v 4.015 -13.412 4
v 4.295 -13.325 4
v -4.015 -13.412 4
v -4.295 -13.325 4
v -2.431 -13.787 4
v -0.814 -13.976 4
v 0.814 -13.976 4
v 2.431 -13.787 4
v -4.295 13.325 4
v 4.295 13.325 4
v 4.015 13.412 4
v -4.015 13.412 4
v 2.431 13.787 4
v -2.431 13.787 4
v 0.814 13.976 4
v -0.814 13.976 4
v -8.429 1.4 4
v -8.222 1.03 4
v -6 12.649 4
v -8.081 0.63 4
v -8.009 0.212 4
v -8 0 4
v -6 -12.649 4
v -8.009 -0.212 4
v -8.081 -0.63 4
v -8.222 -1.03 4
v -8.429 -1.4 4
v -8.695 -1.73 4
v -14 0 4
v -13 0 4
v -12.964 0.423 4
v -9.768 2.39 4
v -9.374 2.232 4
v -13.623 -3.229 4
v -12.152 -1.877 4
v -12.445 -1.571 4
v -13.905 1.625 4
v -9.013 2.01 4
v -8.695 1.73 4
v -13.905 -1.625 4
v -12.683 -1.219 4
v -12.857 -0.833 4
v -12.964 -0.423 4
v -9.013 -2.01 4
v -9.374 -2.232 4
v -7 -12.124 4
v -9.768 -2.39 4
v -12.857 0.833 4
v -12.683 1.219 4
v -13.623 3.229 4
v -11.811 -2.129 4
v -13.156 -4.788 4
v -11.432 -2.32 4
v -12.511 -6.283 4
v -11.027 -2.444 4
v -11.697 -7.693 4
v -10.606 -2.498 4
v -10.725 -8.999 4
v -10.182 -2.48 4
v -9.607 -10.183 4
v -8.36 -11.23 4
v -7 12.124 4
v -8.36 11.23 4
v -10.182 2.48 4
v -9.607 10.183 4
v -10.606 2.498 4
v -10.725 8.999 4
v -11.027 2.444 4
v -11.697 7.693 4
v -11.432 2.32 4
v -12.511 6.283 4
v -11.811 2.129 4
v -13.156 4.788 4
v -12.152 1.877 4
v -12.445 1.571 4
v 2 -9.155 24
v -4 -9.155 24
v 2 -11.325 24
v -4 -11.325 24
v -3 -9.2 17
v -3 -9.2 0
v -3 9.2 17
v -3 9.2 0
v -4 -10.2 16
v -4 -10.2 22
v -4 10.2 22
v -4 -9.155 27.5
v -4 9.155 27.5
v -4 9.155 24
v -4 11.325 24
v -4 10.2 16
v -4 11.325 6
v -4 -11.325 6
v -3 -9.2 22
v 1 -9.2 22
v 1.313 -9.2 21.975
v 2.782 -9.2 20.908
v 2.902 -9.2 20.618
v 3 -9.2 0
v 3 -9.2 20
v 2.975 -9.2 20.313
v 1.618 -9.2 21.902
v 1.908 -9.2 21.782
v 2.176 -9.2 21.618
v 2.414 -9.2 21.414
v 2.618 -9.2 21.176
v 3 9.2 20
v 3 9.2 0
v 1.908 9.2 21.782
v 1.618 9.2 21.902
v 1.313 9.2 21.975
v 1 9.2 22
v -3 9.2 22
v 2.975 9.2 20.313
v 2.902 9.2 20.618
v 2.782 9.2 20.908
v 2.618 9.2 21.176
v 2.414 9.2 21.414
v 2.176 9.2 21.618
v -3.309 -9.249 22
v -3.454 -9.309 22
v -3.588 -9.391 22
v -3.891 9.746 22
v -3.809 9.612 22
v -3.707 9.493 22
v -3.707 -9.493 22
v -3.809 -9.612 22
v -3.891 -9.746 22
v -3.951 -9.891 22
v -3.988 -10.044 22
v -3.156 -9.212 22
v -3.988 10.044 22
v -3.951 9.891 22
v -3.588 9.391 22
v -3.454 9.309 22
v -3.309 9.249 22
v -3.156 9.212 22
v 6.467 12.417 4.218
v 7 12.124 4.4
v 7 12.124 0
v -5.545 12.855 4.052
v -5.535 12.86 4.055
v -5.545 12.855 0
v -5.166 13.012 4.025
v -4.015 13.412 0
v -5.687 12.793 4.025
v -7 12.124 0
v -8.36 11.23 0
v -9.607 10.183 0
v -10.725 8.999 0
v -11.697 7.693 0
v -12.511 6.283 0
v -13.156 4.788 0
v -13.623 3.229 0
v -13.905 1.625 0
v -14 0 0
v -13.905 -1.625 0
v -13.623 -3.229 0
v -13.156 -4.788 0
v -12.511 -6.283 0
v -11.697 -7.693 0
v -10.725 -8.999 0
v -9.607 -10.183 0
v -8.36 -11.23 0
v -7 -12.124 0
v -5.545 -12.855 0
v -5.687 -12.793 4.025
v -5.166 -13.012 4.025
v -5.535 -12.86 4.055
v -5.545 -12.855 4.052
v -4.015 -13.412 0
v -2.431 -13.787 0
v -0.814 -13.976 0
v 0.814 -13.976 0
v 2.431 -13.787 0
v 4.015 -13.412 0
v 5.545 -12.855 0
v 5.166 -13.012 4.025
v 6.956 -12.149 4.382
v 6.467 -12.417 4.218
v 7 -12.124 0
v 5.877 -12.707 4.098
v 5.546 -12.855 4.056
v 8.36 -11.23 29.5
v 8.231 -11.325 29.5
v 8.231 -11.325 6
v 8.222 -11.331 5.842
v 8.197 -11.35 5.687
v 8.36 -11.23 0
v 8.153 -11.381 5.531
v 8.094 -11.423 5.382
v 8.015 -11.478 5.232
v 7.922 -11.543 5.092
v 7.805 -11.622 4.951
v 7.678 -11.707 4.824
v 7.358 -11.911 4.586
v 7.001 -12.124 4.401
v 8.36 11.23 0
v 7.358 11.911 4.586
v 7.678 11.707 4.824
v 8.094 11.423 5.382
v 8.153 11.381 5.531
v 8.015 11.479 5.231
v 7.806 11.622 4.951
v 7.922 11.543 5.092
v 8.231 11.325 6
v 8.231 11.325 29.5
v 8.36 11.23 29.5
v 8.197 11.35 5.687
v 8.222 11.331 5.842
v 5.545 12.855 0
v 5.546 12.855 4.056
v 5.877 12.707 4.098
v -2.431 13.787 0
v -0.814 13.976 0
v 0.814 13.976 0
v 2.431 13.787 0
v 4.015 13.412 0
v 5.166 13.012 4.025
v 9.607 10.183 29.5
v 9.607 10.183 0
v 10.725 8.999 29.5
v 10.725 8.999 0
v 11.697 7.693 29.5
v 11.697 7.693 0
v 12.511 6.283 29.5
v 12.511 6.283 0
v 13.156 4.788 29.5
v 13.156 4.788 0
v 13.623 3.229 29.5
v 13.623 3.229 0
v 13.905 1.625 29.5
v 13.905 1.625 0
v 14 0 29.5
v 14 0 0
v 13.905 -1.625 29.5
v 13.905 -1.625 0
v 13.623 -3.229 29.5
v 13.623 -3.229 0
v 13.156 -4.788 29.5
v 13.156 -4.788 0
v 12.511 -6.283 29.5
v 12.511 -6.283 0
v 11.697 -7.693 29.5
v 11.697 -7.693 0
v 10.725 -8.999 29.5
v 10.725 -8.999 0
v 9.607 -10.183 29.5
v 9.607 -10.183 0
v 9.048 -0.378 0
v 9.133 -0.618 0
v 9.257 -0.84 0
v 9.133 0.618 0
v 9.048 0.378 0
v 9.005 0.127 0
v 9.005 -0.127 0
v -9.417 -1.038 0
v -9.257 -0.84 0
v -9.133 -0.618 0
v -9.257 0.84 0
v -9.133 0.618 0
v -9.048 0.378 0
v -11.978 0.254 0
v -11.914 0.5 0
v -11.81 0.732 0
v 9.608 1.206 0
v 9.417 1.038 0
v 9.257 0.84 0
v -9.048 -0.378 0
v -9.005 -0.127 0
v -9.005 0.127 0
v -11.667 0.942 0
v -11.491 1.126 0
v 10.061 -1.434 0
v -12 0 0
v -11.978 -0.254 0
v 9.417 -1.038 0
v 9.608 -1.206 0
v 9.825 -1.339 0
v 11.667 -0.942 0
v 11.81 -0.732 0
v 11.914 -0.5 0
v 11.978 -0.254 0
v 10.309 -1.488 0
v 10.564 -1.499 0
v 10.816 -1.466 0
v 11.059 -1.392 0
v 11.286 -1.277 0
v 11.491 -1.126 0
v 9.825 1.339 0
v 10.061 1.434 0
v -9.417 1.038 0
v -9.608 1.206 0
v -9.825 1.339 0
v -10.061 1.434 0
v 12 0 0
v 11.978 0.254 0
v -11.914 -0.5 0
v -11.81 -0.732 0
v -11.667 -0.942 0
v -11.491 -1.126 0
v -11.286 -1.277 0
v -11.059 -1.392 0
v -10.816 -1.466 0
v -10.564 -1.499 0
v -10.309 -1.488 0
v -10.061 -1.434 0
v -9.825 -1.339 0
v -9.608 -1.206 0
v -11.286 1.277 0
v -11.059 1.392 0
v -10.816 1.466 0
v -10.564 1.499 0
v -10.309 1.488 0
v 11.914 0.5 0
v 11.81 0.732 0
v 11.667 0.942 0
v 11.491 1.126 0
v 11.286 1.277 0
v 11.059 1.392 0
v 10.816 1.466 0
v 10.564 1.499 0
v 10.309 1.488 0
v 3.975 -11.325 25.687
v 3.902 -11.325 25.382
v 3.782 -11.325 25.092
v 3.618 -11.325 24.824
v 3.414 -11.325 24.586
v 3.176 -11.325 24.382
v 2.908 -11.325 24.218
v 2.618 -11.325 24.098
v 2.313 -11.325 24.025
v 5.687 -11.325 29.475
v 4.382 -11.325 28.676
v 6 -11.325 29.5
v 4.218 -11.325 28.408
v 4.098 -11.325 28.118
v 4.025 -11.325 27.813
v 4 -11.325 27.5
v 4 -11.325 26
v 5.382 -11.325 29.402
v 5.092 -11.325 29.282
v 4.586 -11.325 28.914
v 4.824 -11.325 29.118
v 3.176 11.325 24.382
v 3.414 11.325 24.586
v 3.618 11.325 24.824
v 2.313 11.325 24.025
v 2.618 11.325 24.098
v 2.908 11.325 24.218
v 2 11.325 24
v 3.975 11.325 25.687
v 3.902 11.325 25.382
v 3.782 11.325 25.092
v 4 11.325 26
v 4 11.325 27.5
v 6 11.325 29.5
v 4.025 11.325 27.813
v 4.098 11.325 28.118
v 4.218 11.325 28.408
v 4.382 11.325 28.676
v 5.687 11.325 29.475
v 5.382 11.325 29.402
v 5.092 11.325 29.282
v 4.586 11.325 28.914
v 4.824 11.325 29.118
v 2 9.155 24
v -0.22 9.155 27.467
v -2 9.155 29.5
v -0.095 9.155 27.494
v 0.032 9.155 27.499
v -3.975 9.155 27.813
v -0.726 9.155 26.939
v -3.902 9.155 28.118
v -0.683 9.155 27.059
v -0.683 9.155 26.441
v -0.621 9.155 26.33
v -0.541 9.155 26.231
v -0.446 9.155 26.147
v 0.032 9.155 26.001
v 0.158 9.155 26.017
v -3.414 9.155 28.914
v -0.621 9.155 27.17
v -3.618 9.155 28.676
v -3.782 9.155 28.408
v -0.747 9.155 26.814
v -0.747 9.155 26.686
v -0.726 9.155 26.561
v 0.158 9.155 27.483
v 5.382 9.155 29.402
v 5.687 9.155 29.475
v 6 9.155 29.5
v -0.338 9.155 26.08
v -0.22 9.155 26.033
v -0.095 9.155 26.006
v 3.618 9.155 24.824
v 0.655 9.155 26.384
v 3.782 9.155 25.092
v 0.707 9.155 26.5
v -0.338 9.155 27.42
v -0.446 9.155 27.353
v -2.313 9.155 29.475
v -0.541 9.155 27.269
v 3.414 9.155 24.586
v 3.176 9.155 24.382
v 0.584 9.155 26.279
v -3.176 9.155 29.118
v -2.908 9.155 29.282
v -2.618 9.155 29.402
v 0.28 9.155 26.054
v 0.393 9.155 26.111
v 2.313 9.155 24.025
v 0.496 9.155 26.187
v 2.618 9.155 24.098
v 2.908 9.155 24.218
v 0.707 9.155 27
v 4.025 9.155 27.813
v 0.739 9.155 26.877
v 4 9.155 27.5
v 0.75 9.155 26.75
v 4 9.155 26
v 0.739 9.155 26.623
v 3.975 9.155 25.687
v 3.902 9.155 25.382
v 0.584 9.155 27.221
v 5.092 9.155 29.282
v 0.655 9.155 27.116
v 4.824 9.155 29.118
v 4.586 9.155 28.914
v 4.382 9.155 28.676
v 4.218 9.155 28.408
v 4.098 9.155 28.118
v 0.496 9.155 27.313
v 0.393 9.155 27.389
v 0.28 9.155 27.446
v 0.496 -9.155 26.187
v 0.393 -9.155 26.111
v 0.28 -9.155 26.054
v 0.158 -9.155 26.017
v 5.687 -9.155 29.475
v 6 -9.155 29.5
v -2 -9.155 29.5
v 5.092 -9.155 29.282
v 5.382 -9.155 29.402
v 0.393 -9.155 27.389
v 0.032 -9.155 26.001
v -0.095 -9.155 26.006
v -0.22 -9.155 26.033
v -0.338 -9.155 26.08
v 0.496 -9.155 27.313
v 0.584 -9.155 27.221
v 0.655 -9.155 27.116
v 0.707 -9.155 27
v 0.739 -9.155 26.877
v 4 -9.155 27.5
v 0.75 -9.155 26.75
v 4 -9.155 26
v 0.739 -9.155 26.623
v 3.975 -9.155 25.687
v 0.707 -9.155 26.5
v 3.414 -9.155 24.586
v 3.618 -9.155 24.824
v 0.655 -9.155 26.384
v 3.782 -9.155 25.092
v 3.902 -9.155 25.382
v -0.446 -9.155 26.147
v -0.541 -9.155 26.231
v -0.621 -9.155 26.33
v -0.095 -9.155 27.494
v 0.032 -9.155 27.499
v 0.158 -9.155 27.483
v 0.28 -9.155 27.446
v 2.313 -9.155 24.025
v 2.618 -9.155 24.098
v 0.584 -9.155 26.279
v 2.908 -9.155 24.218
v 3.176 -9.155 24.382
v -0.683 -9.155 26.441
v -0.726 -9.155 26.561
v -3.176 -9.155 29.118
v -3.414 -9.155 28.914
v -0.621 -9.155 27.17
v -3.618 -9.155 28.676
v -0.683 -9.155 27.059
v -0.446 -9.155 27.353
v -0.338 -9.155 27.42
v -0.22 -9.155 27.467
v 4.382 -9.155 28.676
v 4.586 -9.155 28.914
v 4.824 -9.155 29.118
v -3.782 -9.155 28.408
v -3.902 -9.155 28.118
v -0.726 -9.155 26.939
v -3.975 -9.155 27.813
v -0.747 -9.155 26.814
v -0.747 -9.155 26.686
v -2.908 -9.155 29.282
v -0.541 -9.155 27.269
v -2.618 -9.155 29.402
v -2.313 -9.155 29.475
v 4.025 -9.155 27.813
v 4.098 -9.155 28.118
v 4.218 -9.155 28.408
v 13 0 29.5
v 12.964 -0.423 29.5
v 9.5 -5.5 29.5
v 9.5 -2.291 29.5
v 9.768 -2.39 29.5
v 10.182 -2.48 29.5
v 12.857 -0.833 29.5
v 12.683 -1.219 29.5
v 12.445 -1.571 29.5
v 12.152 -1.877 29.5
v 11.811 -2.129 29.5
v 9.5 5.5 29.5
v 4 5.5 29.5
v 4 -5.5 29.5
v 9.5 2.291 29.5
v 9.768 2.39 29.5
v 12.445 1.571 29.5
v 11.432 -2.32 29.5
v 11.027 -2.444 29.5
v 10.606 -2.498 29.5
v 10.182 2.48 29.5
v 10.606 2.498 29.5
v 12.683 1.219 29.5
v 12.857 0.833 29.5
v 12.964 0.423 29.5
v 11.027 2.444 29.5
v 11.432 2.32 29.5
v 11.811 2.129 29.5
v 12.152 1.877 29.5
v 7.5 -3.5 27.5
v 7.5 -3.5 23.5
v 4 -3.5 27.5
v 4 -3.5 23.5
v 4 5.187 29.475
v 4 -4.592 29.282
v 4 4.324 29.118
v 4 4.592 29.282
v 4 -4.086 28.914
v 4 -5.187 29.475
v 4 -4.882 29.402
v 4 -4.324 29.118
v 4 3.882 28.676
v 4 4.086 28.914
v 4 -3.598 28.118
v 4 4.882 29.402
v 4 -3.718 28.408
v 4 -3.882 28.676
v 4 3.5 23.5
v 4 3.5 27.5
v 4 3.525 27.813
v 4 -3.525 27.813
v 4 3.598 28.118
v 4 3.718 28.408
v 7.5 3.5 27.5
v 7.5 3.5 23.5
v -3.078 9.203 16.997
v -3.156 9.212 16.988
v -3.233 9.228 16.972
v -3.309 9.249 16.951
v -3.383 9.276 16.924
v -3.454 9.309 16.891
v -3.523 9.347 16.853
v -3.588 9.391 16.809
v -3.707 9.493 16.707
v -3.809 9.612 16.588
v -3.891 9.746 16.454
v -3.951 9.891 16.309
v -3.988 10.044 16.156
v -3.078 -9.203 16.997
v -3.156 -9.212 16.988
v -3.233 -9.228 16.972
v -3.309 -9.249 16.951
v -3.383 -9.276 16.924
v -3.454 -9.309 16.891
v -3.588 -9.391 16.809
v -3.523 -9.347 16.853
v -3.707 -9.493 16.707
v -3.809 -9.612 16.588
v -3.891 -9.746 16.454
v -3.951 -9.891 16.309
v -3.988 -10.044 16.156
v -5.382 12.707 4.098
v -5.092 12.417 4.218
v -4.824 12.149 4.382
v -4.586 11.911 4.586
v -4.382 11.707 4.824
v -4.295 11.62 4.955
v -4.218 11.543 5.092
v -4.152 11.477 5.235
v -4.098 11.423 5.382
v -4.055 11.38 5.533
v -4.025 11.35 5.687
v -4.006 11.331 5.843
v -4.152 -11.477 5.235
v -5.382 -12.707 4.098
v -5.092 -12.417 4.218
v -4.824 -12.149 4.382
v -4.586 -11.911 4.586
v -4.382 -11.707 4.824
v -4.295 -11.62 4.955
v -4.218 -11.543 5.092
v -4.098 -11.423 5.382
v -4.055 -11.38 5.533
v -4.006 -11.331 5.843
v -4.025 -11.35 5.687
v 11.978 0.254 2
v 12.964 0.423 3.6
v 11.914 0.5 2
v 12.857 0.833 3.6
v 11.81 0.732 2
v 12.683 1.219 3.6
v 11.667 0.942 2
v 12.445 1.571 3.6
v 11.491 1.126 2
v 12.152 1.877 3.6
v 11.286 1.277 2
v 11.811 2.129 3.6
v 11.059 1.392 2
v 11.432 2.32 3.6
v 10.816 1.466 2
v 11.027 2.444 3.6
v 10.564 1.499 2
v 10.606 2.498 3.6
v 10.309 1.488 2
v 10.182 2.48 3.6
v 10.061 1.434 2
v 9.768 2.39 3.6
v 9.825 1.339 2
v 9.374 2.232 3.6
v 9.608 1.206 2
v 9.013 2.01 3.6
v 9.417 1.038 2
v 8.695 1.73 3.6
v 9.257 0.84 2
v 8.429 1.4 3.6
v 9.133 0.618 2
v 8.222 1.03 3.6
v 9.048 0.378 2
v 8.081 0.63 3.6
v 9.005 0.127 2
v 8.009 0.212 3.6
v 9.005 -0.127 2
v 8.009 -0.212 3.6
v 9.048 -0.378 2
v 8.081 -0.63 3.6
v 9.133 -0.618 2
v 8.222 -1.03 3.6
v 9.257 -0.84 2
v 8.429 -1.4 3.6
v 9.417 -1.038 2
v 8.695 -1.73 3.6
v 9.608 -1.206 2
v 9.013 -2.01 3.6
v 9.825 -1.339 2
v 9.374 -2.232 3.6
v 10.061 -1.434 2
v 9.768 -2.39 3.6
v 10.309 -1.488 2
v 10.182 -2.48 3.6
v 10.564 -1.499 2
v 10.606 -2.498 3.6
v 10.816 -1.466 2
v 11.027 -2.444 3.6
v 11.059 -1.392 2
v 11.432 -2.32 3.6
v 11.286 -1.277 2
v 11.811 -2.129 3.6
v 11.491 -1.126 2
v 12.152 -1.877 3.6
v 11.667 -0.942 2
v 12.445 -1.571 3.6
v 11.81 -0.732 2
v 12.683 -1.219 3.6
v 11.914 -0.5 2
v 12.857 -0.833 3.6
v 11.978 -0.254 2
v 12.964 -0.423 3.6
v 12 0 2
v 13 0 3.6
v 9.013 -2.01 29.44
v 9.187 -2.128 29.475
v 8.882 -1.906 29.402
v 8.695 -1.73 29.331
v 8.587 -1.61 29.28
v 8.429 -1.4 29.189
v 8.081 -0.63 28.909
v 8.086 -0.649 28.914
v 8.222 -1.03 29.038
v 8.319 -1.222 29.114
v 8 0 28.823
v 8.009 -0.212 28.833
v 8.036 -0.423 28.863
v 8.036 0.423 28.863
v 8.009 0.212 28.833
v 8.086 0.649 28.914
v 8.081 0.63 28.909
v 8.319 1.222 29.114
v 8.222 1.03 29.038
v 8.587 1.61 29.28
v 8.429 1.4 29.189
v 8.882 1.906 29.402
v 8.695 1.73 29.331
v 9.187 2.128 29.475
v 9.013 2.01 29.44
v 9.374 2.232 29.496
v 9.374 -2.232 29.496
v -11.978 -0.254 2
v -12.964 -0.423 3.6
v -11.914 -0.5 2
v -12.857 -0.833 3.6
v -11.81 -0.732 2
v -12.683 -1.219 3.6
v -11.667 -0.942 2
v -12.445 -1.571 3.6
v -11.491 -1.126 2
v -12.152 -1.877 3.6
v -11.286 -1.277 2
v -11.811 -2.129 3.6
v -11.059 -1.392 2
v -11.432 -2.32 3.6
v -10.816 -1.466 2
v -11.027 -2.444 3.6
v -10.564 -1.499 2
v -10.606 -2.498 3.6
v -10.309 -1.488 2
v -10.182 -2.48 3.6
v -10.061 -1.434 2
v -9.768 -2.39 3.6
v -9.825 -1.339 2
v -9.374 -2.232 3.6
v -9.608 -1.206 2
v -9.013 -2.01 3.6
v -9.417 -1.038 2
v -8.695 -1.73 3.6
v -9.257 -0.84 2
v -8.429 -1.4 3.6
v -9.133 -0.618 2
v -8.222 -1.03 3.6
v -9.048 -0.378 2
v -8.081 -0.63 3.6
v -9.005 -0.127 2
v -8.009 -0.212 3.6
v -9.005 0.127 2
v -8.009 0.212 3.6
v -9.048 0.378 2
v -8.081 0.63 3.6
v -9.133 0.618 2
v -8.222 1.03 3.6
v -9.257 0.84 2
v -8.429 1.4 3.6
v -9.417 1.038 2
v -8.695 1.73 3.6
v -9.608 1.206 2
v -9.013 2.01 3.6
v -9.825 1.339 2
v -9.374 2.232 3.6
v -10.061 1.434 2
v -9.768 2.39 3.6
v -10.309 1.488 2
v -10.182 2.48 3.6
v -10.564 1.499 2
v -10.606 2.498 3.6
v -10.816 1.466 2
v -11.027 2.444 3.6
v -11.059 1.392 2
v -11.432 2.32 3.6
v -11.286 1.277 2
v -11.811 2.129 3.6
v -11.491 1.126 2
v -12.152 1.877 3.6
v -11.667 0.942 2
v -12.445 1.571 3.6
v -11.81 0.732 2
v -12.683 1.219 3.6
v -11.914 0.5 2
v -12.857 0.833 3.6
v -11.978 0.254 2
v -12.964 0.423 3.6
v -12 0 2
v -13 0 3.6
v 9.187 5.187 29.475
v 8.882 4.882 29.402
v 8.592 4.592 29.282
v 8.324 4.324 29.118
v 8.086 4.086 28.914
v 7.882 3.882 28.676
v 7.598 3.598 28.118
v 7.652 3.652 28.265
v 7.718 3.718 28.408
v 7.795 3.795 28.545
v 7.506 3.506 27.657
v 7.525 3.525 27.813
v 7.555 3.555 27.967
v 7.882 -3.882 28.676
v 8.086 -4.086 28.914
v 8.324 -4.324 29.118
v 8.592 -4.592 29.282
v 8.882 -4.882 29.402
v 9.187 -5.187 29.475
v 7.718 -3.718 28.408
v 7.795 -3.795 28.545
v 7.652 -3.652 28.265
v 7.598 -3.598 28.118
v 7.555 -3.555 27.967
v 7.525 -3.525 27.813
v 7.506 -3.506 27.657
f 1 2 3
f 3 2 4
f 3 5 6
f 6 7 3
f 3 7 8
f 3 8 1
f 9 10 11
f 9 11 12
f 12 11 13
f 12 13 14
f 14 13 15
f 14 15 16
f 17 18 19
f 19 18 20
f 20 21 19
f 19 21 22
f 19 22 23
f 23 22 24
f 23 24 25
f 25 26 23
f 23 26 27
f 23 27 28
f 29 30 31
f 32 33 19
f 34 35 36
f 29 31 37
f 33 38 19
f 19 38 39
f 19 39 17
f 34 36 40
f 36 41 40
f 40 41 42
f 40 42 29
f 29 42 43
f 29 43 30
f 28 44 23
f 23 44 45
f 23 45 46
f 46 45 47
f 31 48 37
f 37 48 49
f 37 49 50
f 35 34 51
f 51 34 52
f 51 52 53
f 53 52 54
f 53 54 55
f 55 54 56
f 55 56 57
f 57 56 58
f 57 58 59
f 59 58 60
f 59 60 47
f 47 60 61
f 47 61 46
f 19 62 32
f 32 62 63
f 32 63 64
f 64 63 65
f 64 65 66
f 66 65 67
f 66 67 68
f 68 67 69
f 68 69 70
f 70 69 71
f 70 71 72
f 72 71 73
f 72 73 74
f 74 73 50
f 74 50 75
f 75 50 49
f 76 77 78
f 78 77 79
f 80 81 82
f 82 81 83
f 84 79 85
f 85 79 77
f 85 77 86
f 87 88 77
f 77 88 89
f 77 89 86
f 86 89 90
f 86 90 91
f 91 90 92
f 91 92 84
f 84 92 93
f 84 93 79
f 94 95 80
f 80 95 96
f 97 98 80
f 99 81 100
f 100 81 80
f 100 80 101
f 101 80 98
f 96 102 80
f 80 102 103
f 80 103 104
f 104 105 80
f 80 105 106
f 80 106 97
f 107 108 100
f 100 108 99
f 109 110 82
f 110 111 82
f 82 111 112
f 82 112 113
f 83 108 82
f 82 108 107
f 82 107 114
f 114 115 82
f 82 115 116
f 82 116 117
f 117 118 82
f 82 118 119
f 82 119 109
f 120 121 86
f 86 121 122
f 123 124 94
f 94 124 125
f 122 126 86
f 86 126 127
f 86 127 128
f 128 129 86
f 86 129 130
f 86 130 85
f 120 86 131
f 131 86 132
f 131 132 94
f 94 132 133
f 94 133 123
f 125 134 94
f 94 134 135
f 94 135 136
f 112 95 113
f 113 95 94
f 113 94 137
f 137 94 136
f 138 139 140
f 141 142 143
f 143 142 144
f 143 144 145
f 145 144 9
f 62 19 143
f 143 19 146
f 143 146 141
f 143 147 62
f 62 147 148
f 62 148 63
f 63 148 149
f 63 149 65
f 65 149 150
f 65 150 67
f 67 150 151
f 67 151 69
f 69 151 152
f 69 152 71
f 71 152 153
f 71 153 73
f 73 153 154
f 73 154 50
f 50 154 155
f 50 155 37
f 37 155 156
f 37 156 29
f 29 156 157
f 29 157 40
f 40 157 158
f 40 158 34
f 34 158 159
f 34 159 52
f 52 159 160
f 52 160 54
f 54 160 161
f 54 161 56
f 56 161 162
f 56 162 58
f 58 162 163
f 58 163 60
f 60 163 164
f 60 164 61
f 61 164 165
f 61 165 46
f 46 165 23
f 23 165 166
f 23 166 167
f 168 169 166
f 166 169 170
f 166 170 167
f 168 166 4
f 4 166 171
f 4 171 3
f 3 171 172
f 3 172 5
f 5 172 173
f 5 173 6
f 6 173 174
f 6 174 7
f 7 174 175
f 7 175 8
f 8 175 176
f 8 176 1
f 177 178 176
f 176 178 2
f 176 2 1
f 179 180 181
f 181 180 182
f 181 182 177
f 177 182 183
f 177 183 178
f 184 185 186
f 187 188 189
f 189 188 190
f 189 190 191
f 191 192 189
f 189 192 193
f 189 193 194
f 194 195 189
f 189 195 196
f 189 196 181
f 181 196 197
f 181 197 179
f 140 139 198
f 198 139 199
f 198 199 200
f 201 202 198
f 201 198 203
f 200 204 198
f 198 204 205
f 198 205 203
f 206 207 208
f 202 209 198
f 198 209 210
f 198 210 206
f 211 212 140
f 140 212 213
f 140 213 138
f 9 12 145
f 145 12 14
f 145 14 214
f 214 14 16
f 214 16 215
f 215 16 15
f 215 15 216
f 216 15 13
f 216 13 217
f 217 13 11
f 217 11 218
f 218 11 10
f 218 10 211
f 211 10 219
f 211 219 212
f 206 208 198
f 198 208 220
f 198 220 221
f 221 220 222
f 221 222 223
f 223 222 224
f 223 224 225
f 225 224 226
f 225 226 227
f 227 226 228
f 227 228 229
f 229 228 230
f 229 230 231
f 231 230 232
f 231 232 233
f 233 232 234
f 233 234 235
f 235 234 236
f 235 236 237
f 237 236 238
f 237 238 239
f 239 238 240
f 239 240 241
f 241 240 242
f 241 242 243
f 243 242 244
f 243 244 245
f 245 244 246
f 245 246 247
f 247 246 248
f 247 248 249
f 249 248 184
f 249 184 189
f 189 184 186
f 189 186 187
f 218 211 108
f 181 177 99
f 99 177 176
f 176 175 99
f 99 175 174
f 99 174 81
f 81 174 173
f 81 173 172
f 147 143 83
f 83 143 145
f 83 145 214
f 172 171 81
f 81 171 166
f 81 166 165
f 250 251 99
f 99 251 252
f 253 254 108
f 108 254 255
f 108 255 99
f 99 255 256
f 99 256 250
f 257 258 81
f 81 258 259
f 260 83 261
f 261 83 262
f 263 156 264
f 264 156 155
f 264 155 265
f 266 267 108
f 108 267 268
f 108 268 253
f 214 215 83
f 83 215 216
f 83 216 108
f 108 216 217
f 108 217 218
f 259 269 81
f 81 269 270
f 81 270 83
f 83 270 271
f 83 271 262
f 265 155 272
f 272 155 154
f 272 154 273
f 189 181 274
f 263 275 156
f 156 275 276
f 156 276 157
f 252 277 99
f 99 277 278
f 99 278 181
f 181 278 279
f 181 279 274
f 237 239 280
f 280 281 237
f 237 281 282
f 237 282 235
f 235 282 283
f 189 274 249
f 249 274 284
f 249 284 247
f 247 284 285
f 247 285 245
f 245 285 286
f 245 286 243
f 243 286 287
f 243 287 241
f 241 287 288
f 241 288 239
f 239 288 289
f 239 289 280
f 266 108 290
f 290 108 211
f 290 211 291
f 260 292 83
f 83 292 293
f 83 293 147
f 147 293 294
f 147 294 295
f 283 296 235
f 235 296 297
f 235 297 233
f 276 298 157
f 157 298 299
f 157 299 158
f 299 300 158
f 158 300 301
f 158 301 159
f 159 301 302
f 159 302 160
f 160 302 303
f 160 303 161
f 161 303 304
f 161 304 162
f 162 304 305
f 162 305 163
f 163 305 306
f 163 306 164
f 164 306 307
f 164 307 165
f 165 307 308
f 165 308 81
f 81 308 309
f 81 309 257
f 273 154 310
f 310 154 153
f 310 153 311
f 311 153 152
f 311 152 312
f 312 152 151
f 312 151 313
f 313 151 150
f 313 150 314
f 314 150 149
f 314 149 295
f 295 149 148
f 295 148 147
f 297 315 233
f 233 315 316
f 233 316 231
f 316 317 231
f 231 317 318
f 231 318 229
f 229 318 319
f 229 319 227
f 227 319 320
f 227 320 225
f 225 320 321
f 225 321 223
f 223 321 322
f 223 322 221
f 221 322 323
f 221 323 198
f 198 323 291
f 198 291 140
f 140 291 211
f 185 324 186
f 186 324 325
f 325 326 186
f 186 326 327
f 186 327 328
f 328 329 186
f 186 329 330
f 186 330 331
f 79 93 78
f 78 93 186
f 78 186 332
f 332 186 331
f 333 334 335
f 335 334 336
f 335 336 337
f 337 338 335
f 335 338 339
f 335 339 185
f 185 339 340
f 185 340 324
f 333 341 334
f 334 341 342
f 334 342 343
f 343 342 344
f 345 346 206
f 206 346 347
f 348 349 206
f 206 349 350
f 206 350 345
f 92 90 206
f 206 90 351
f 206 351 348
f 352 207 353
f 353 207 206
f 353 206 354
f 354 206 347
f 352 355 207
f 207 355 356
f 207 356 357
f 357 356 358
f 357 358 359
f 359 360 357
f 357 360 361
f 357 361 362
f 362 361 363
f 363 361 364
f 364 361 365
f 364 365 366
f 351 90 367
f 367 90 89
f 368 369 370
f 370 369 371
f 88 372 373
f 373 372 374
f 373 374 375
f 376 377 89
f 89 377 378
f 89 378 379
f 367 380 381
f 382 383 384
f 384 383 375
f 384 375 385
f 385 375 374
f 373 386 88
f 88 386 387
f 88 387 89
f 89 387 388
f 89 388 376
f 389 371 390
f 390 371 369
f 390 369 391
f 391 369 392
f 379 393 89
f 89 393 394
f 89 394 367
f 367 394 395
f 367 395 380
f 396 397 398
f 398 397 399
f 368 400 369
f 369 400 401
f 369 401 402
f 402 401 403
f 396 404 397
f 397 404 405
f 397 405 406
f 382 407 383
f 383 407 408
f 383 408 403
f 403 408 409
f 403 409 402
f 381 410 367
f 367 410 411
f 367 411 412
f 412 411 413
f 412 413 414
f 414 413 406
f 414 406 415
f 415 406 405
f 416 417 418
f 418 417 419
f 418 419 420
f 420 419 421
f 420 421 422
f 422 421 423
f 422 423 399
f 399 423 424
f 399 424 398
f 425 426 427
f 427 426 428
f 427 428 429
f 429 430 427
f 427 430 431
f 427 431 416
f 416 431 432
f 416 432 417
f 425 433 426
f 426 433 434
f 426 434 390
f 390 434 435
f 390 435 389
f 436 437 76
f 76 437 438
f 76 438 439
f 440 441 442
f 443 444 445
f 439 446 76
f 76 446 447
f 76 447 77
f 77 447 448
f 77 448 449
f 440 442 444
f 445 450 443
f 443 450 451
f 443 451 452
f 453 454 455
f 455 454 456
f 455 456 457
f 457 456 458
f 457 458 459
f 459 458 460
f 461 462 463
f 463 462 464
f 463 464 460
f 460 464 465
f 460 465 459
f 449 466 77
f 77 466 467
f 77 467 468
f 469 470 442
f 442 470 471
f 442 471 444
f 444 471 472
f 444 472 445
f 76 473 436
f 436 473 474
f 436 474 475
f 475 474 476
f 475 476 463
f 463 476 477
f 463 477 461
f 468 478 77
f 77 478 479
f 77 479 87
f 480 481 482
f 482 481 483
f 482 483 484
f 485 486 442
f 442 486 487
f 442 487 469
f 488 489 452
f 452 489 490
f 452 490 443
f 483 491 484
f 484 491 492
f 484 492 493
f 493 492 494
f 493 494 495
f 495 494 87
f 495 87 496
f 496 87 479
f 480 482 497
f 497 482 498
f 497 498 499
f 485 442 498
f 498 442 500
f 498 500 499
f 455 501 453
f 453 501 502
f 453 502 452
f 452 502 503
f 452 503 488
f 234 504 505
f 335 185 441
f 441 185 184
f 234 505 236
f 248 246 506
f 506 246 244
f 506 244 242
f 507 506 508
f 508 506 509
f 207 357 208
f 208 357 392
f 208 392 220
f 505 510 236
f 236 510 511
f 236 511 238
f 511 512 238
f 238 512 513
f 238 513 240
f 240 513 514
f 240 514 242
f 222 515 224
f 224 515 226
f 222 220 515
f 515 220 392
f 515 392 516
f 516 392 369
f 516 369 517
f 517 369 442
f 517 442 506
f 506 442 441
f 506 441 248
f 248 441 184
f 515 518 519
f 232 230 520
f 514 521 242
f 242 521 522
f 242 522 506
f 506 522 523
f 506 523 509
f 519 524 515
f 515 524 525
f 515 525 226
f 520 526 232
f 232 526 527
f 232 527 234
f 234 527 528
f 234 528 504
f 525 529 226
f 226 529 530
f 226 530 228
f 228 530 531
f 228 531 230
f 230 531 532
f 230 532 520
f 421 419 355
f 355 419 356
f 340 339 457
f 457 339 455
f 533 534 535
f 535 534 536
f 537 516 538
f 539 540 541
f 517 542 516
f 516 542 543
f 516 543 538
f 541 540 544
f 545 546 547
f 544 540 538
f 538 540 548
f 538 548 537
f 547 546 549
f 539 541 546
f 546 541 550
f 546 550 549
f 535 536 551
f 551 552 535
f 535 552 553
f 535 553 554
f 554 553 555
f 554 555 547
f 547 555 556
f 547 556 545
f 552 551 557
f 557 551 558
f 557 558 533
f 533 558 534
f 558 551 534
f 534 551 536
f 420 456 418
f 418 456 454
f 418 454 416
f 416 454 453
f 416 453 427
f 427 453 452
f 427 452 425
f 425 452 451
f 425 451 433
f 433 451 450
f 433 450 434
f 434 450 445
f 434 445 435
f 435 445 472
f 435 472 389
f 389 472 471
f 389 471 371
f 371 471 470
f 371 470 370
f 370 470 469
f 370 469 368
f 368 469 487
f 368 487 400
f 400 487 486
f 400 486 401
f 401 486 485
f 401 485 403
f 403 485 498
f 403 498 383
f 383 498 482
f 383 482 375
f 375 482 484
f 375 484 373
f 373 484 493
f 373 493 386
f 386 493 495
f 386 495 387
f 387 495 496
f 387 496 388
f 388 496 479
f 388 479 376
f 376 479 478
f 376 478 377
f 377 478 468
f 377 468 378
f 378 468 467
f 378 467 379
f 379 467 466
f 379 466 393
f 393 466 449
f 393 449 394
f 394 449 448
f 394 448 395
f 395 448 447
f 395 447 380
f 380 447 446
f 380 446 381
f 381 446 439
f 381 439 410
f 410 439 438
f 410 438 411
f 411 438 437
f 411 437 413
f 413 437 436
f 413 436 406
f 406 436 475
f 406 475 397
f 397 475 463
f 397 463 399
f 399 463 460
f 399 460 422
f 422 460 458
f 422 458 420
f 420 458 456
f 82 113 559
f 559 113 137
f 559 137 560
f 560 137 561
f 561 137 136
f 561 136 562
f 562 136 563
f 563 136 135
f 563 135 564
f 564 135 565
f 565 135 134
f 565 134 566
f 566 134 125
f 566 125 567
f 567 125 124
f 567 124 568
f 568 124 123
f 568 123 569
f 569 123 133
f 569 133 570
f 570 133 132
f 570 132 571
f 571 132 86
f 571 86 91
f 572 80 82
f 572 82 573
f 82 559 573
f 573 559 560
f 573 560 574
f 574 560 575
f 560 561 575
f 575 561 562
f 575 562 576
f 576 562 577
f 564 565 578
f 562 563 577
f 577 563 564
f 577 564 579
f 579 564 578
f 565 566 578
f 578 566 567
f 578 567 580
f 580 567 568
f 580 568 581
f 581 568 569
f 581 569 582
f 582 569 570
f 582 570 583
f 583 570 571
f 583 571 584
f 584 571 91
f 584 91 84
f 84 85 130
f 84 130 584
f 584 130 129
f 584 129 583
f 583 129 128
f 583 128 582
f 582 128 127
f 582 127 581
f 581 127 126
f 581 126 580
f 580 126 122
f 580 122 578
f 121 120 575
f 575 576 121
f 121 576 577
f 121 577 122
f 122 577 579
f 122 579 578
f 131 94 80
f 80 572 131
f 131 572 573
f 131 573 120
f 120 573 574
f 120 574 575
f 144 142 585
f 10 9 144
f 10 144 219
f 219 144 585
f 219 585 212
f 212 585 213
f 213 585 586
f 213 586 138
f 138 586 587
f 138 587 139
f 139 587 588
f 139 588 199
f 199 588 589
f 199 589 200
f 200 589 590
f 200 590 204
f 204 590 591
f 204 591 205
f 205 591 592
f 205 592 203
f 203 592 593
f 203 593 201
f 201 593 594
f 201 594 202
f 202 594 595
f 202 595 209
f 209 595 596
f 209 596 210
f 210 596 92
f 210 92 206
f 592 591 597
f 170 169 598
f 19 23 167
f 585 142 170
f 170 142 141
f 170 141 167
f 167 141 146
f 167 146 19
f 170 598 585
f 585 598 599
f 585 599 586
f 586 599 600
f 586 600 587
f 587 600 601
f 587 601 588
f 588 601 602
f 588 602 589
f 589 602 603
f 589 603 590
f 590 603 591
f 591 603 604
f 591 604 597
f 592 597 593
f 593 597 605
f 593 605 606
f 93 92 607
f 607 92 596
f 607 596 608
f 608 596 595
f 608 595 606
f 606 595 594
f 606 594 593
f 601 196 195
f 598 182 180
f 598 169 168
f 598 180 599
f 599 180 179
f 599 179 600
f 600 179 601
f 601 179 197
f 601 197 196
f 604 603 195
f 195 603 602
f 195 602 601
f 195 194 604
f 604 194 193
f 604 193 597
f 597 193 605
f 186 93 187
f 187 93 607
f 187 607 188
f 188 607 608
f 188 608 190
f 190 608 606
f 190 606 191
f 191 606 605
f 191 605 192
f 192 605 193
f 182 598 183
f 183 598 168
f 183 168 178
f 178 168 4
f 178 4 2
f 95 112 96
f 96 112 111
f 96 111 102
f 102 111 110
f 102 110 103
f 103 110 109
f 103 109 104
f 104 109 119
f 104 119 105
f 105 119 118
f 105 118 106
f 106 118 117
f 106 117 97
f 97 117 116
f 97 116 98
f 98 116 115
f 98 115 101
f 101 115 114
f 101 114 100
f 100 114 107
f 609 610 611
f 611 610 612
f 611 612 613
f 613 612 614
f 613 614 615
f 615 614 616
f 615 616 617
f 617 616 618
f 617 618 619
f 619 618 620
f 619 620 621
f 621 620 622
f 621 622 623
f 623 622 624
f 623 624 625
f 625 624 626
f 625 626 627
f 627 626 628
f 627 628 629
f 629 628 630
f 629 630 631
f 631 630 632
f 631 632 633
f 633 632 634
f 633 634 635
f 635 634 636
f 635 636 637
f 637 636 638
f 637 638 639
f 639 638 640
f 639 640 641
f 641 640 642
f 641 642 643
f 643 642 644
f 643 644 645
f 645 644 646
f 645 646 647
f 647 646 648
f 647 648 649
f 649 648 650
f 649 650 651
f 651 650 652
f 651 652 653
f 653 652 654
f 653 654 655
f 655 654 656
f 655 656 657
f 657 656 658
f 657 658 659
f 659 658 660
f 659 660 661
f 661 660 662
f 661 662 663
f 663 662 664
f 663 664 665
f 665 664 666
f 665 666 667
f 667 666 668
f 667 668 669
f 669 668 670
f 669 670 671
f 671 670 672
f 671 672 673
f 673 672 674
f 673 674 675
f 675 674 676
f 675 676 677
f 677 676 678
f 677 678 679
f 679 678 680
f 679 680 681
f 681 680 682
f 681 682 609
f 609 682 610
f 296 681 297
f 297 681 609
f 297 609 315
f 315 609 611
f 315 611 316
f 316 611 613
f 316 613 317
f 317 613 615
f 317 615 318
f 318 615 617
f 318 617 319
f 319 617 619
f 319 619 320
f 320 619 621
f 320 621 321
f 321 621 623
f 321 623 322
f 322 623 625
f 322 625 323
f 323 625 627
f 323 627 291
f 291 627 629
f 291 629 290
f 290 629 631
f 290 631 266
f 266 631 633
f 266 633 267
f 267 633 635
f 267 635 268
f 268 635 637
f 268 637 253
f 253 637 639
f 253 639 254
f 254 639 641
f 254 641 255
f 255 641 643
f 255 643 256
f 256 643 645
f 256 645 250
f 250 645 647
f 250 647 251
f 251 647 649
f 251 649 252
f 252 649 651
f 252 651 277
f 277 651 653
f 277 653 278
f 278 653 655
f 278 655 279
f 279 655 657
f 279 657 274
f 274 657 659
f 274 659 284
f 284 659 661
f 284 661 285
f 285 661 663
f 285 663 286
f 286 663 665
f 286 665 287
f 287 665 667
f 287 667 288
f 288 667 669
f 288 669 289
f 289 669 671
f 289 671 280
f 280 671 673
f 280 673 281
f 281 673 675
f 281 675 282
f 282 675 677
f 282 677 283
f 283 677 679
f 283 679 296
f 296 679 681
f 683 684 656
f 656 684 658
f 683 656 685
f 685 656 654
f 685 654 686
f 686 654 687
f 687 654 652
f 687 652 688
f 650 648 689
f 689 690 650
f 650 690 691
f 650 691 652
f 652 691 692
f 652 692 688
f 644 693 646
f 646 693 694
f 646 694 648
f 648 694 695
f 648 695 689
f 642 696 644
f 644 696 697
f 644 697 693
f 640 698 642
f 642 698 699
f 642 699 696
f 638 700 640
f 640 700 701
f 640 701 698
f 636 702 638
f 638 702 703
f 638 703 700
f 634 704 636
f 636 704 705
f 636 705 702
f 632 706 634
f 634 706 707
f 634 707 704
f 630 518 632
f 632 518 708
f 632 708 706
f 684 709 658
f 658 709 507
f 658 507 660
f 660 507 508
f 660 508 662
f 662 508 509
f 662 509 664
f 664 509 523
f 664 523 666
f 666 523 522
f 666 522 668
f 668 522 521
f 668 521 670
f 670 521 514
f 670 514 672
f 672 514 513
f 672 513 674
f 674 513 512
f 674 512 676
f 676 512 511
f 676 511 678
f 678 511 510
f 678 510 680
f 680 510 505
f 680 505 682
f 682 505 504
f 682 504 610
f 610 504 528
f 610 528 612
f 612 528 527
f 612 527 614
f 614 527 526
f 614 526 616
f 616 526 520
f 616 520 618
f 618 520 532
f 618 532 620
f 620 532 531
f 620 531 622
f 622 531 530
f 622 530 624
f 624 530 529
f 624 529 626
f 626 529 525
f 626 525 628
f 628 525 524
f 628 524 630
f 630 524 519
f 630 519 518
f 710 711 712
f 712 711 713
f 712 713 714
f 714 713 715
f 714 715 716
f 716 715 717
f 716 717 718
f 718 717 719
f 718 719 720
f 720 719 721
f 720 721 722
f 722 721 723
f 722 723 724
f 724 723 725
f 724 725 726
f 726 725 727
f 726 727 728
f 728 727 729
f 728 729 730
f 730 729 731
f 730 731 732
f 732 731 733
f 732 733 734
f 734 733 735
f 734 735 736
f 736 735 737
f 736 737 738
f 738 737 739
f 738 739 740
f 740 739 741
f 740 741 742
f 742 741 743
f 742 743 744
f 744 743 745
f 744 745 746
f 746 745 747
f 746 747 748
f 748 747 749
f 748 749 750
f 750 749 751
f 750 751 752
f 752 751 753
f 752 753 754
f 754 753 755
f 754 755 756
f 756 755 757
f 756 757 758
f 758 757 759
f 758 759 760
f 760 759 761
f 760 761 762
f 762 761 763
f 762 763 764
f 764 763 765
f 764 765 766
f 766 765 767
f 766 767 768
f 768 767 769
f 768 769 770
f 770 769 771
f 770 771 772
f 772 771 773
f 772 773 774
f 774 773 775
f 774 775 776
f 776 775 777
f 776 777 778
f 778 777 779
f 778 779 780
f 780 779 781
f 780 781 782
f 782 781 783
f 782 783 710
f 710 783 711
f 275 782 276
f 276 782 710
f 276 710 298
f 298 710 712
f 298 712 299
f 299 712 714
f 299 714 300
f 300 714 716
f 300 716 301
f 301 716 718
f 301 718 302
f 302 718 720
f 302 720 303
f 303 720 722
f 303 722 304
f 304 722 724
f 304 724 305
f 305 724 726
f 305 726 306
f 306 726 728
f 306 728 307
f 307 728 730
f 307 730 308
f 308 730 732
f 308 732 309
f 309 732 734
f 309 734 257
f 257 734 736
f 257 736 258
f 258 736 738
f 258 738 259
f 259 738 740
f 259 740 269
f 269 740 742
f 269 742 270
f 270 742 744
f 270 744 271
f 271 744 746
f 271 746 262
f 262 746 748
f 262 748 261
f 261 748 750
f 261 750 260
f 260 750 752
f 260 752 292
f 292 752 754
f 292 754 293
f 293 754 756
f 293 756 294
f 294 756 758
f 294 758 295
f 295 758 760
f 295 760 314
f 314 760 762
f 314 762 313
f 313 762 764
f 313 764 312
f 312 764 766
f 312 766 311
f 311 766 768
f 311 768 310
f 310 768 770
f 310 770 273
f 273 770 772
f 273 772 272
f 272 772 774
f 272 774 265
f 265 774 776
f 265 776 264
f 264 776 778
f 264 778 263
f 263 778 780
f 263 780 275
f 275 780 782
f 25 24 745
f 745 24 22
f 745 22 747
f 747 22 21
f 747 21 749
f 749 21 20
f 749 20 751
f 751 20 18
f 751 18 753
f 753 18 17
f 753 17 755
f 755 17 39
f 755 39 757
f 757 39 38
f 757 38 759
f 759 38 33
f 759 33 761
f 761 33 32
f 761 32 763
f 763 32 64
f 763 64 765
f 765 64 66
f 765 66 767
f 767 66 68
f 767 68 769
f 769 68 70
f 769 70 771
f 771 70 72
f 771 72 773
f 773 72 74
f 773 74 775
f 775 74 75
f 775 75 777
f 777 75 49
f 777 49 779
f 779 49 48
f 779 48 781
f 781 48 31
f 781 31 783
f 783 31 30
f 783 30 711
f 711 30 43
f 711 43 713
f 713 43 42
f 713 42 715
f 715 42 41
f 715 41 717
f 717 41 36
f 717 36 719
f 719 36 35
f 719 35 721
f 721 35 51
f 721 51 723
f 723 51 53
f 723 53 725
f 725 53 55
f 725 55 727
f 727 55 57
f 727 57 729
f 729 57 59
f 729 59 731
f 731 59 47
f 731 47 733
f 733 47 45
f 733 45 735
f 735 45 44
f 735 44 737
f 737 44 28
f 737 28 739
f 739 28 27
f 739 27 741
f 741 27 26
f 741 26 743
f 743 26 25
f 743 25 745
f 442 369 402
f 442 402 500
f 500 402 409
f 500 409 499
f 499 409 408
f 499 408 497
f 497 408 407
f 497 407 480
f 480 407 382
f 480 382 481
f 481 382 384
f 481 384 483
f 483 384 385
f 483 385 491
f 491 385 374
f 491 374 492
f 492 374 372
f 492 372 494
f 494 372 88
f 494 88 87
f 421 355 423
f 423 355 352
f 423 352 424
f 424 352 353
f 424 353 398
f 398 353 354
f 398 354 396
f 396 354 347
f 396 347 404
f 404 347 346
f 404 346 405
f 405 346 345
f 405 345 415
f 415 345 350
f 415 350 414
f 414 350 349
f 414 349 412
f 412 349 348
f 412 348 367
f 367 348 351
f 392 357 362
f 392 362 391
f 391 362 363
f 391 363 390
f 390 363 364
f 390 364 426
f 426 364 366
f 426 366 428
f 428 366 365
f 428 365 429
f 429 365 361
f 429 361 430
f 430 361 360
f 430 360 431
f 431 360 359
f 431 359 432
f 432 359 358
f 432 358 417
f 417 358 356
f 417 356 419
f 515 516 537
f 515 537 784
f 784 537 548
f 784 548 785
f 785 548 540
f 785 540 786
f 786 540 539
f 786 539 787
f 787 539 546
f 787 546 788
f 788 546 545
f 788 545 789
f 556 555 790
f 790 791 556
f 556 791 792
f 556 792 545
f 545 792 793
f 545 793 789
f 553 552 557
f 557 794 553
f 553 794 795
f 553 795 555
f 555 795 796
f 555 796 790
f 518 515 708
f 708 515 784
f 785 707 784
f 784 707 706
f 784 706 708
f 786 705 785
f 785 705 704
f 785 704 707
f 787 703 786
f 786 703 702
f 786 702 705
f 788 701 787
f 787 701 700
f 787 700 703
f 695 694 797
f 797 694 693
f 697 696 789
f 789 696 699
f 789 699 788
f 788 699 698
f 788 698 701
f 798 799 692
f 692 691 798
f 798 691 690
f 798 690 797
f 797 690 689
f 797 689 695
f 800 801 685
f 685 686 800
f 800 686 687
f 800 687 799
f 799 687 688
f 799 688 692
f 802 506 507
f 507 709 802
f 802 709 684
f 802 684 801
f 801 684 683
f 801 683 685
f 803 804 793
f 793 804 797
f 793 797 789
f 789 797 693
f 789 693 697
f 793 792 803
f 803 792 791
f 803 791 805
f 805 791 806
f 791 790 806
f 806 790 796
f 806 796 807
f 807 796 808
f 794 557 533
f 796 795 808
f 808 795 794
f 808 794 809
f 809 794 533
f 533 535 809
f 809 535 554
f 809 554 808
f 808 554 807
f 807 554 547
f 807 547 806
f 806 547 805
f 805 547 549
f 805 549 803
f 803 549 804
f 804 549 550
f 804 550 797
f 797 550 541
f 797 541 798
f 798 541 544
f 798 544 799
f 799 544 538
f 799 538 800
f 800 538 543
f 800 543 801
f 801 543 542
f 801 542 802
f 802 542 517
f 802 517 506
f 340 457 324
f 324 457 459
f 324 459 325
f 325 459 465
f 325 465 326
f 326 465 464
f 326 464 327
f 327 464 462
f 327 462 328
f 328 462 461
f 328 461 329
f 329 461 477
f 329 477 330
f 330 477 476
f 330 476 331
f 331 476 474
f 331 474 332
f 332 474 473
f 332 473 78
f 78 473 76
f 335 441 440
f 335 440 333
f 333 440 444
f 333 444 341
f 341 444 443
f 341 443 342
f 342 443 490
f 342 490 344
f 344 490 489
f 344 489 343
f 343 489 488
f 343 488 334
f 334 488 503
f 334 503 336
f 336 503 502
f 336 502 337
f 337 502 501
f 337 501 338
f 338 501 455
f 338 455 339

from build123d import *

# Parameters (mm, degrees)
SKETCH2_R           = 14
BOSS_EXTRUDE1_DEPTH = 4
SKETCH1_W           = 8
SKETCH1_H           = 22.649954628
SKETCH1_W_2         = 6
SKETCH1_H_2         = 18.4
BOSS_EXTRUDE2_DEPTH = 18
SKETCH3_W           = 8
SKETCH3_H           = 22.649954628
BOSS_EXTRUDE3_DEPTH = 2
SKETCH4_W           = 6
SKETCH4_H           = 18.4
CUT_EXTRUDE1_DEPTH  = 29.142494559
SKETCH5_W           = 5
SKETCH5_H           = 18.4
CUT_EXTRUDE2_DEPTH  = 33.57299495
SKETCH11_W          = 8
SKETCH11_H          = 18.310644234
BOSS_EXTRUDE5_DEPTH = 5.5
BOSS_EXTRUDE4_DEPTH = 25.5
CUT_EXTRUDE4_START  = 5.5
SKETCH9_W           = 3.5
SKETCH9_H           = 7
CUT_EXTRUDE4_DEPTH  = 6
SKETCH7_R           = 0.75
CUT_EXTRUDE5_DEPTH  = 41.03022536
FILLET3_R           = 1
FILLET4_R           = 2
FILLET5_R           = 2
SKETCH14_W          = 1.5
SKETCH14_H          = 2
FILLET6_R           = 2


# Some blends are built 0.0001 mm under size
with BuildPart() as part:
    # Sketch2 → Boss-Extrude1 (new body)
    with BuildSketch(Plane.XY):
        Circle(SKETCH2_R)
    extrude(amount=BOSS_EXTRUDE1_DEPTH)

    # Sketch1 → Boss-Extrude2 (add)
    with BuildSketch(Plane.XY.offset(4)):
        Rectangle(SKETCH1_W, SKETCH1_H)
        Rectangle(SKETCH1_W_2, SKETCH1_H_2, mode=Mode.SUBTRACT)
    extrude(amount=BOSS_EXTRUDE2_DEPTH)

    # Sketch3 → Boss-Extrude3 (add)
    with BuildSketch(Plane.XY.offset(22)):
        Rectangle(SKETCH3_W, SKETCH3_H)
    extrude(amount=BOSS_EXTRUDE3_DEPTH)

    # Sketch4 → Cut-Extrude1 (cut, through all)
    with BuildSketch(Plane.XY.offset(4)):
        Rectangle(SKETCH4_W, SKETCH4_H)
    extrude(amount=-CUT_EXTRUDE1_DEPTH, mode=Mode.SUBTRACT)

    # Sketch5 → Cut-Extrude2 (cut, through all)
    with BuildSketch(Plane.ZY.offset(-3)):
        with Locations((19.5, 0)):
            Rectangle(SKETCH5_W, SKETCH5_H)
    extrude(amount=CUT_EXTRUDE2_DEPTH, mode=Mode.SUBTRACT)

    # Sketch11 → Boss-Extrude5 (add)
    with BuildSketch(Plane.XY.offset(24)):
        Rectangle(SKETCH11_W, SKETCH11_H)
    extrude(amount=BOSS_EXTRUDE5_DEPTH)

    # Sketch8 → Boss-Extrude4 (add)
    with BuildSketch(Plane.XY.offset(4)):
        with BuildLine():
            Line((4, 11.324977314), (4, -11.324977314))
            Line((4, -11.324977314), (8.23072833, -11.324977314))
            ThreePointArc((8.23072833, -11.324977314), (12.474578081, -6.354911619), (14, 0))
            ThreePointArc((14, 0), (12.474578081, 6.354911619), (8.23072833, 11.324977314))
            Line((8.23072833, 11.324977314), (4, 11.324977314))
        make_face()
    extrude(amount=BOSS_EXTRUDE4_DEPTH)

    # Sketch9 → Cut-Extrude4 (cut)
    with BuildSketch(Plane.XY.offset(24).offset(CUT_EXTRUDE4_START)):
        with Locations((5.75, 0)):
            Rectangle(SKETCH9_W, SKETCH9_H)
    extrude(amount=-CUT_EXTRUDE4_DEPTH, mode=Mode.SUBTRACT)

    # Sketch7 → Cut-Extrude5 (cut, through all)
    with BuildSketch(Plane(origin=(0, -9.155322117, 0), x_dir=(1, 0, 0), z_dir=(0, 1, 0))):
        with Locations((0, -26.75)):
            Circle(SKETCH7_R)
    extrude(amount=CUT_EXTRUDE5_DEPTH, mode=Mode.SUBTRACT)

    # Fillet3
    fillet3_edges = [part.edges().sort_by_distance(p)[0] for p in [
        (-4, -9.2, 19.5),
        (-4, 0, 17),
        (-4, 9.2, 19.5),
    ]]
    fillet(fillet3_edges, radius=FILLET3_R - 0.0001)  # a hair under: the kernel refuses the full size

    # Fillet4
    # the kernel refuses this fillet: 2 mm, written as the material it adds along each edge
    with BuildSketch(Plane(origin=(13.23072833, -11.324977314, 4), x_dir=(0, -1, 0), z_dir=(-1, 0, 0))) as fillet4_piece_1_section:
        with BuildLine():
            CenterArc((FILLET4_R, FILLET4_R), FILLET4_R, 180, 90)
            Line((0, FILLET4_R), (0, 0))
            Line((0, 0), (FILLET4_R, 0))
        make_face()
    fillet4_piece_1 = extrude(amount=17.23072833, mode=Mode.PRIVATE)
    fillet4_piece_1 = fillet4_piece_1 & Plane(origin=(0, 0, 4.46853923), x_dir=(1, 0, 0), z_dir=(0, 0, -1)) * Cylinder(14, 43, mode=Mode.PRIVATE)
    add(fillet4_piece_1)
    with BuildSketch(Plane(origin=(-4, 11.324977314, 4), x_dir=(0, 0, 1), z_dir=(0, -1, 0))) as fillet4_piece_2:
        with BuildLine():
            CenterArc((FILLET4_R, FILLET4_R), FILLET4_R, 180, 90)
            Line((0, FILLET4_R), (0, 0))
            Line((0, 0), (FILLET4_R, 0))
        make_face()
    extrude(amount=22.649954628)
    with BuildSketch(Plane(origin=(-4, 11.324977314, 4), x_dir=(0, 1, 0), z_dir=(1, 0, 0))) as fillet4_piece_3_section:
        with BuildLine():
            CenterArc((FILLET4_R, FILLET4_R), FILLET4_R, 180, 90)
            Line((0, FILLET4_R), (0, 0))
            Line((0, 0), (FILLET4_R, 0))
        make_face()
    fillet4_piece_3 = extrude(amount=17.23072833, mode=Mode.PRIVATE)
    fillet4_piece_3 = fillet4_piece_3 & Plane(origin=(0, 0, 4.468539385), x_dir=(1, 0, 0), z_dir=(0, 0, -1)) * Cylinder(14, 43, mode=Mode.PRIVATE)
    add(fillet4_piece_3)
    with BuildSketch(Plane(origin=(-4, 11.324977314, 4), x_dir=(0, 0, 1), z_dir=(0, -1, 0))) as fillet4_piece_4a_section:
        with BuildLine():
            CenterArc((FILLET4_R, FILLET4_R), FILLET4_R, 180, 90)
            Line((0, FILLET4_R), (0, 0))
            Line((0, 0), (FILLET4_R, 0))
        make_face()
    fillet4_piece_4a = extrude(amount=27.649954628, mode=Mode.PRIVATE)
    fillet4_piece_4a = split(fillet4_piece_4a, bisect_by=Plane(origin=(-4.418611248, -11.324977314, 4.472457753), z_dir=(0, -1, 0)), keep=Keep.TOP, mode=Mode.PRIVATE)
    fillet4_piece_4a = fillet4_piece_4a & Plane(origin=(0, 0, 4.472457753), x_dir=(1, 0, 0), z_dir=(0, 0, -1)) * Cylinder(14, 64, mode=Mode.PRIVATE)
    with BuildSketch(Plane(origin=(13.23072833, -11.324977314, 4), x_dir=(0, -1, 0), z_dir=(-1, 0, 0))) as fillet4_piece_4b_section:
        with BuildLine():
            CenterArc((FILLET4_R, FILLET4_R), FILLET4_R, 180, 90)
            Line((0, FILLET4_R), (0, 0))
            Line((0, 0), (FILLET4_R, 0))
        make_face()
    fillet4_piece_4b = extrude(amount=22.23072833, mode=Mode.PRIVATE)
    fillet4_piece_4b = split(fillet4_piece_4b, bisect_by=Plane(origin=(-4, -11.687205264, 4.504335867), z_dir=(-1, 0, 0)), keep=Keep.TOP, mode=Mode.PRIVATE)
    fillet4_piece_4b = fillet4_piece_4b & Plane(origin=(0, 0, 4.504335867), x_dir=(1, 0, 0), z_dir=(0, 0, -1)) * Cylinder(14, 53, mode=Mode.PRIVATE)
    fillet4_piece_4 = fillet4_piece_4a & fillet4_piece_4b
    add(fillet4_piece_4)
    with BuildSketch(Plane(origin=(-4, 16.324977314, 4), x_dir=(0, 0, 1), z_dir=(0, -1, 0))) as fillet4_piece_5a_section:
        with BuildLine():
            CenterArc((FILLET4_R, FILLET4_R), FILLET4_R, 180, 90)
            Line((0, FILLET4_R), (0, 0))
            Line((0, 0), (FILLET4_R, 0))
        make_face()
    fillet4_piece_5a = extrude(amount=27.649954628, mode=Mode.PRIVATE)
    fillet4_piece_5a = split(fillet4_piece_5a, bisect_by=Plane(origin=(-4.418615633, 11.324977314, 4.472459709), z_dir=(0, 1, 0)), keep=Keep.TOP, mode=Mode.PRIVATE)
    fillet4_piece_5a = fillet4_piece_5a & Plane(origin=(0, 0, 4.472459709), x_dir=(1, 0, 0), z_dir=(0, 0, -1)) * Cylinder(14, 64, mode=Mode.PRIVATE)
    with BuildSketch(Plane(origin=(-9, 11.324977314, 4), x_dir=(0, 1, 0), z_dir=(1, 0, 0))) as fillet4_piece_5b_section:
        with BuildLine():
            CenterArc((FILLET4_R, FILLET4_R), FILLET4_R, 180, 90)
            Line((0, FILLET4_R), (0, 0))
            Line((0, 0), (FILLET4_R, 0))
        make_face()
    fillet4_piece_5b = extrude(amount=22.23072833, mode=Mode.PRIVATE)
    fillet4_piece_5b = split(fillet4_piece_5b, bisect_by=Plane(origin=(-4, 11.687206224, 4.504336165), z_dir=(-1, 0, 0)), keep=Keep.TOP, mode=Mode.PRIVATE)
    fillet4_piece_5b = fillet4_piece_5b & Plane(origin=(0, 0, 4.504336165), x_dir=(1, 0, 0), z_dir=(0, 0, -1)) * Cylinder(14, 53, mode=Mode.PRIVATE)
    fillet4_piece_5 = fillet4_piece_5a & fillet4_piece_5b
    add(fillet4_piece_5)

    # Fillet5
    fillet5_edges = [part.edges().sort_by_distance(p)[0] for p in [
        (3, 0, 22),
    ]]
    fillet(fillet5_edges, radius=FILLET5_R)

    # Sketch14 → Cut-Revolve1 (revolve, cut)
    with BuildSketch(Plane(origin=(0, 0, 0), x_dir=(1, 0, 0), z_dir=(0, 1, 0))):
        Polygon((10.5, -2), (10.5, -29.5), (13, -29.5), (13, -3.6), (12, -2), align=None)
        with Locations((11.25, -1)):
            Rectangle(SKETCH14_W, SKETCH14_H)
    cut_revolve1 = revolve(axis=Axis((10.5, 0, 29.5), (0, 0, -1)), mode=Mode.SUBTRACT)

    # Mirror1: Cut-Revolve1 across plane
    add(cut_revolve1.mirror(Plane(origin=(0, 0, 0), x_dir=(0, 0, 1), z_dir=(1, 0, 0))), mode=Mode.SUBTRACT)

    # Fillet6
    # the kernel refuses this fillet: 2 mm, written as the material it adds along each edge
    with BuildSketch(Plane(origin=(4, -11.324977314, 24), x_dir=(-1, 0, 0), z_dir=(0, 1, 0)), Plane(origin=(4, 4.155322117, 24), x_dir=(-1, 0, 0), z_dir=(0, 1, 0))) as fillet6_piece_1:
        with BuildLine():
            CenterArc((FILLET6_R, FILLET6_R), FILLET6_R, 180, 90)
            Line((0, FILLET6_R), (0, 0))
            Line((0, 0), (FILLET6_R, 0))
        make_face()
    extrude(amount=7.169655197)
    # the kernel refuses this fillet: 2 mm, written as the material it takes off along each edge
    with BuildSketch(Plane(origin=(4, 16.324977314, 29.5), x_dir=(1, 0, 0), z_dir=(0, -1, 0)), Plane(origin=(4, -9.155322117, 29.5), x_dir=(1, 0, 0), z_dir=(0, -1, 0))) as fillet6_2_piece_1:
        with BuildLine():
            CenterArc((FILLET6_R, -FILLET6_R), FILLET6_R, 90, 90)
            Line((0, -FILLET6_R), (0, 0))
            Line((0, 0), (FILLET6_R, 0))
        make_face()
    extrude(amount=7.169655197, mode=Mode.SUBTRACT)
    with BuildSketch(Plane(origin=(7.5, 3.5, 29.5), x_dir=(0, 1, 0), z_dir=(-1, 0, 0)), Plane(origin=(4, -3.5, 29.5), x_dir=(0, -1, 0), z_dir=(1, 0, 0))) as fillet6_2_piece_2:
        with BuildLine():
            CenterArc((FILLET6_R, FILLET6_R), FILLET6_R, 180, 90)
            Line((0, FILLET6_R), (0, 0))
            Line((0, 0), (FILLET6_R, 0))
        make_face()
    extrude(amount=3.5, mode=Mode.SUBTRACT)
    with BuildSketch(Plane(origin=(7.5, -3.5, 29.5), x_dir=(1, 0, 0), z_dir=(0, 1, 0))) as fillet6_2_piece_3:
        with BuildLine():
            CenterArc((FILLET6_R, FILLET6_R), FILLET6_R, 180, 90)
            Line((0, FILLET6_R), (0, 0))
            Line((0, 0), (FILLET6_R, 0))
        make_face()
    extrude(amount=7, mode=Mode.SUBTRACT)
    with BuildSketch(Plane(origin=(-4, 14.155322117, 29.5), x_dir=(0, 0, -1), z_dir=(0, -1, 0))) as fillet6_2_piece_4:
        with BuildLine():
            CenterArc((FILLET6_R, FILLET6_R), FILLET6_R, 180, 90)
            Line((0, FILLET6_R), (0, 0))
            Line((0, 0), (FILLET6_R, 0))
        make_face()
    extrude(amount=28.310644234, mode=Mode.SUBTRACT)
    with BuildSketch(Plane(origin=(12.5, 3.5, 29.5), x_dir=(0, 1, 0), z_dir=(-1, 0, 0))) as fillet6_2_piece_5a_section:
        with BuildLine():
            CenterArc((FILLET6_R, FILLET6_R), FILLET6_R, 180, 90)
            Line((0, FILLET6_R), (0, 0))
            Line((0, 0), (FILLET6_R, 0))
        make_face()
    fillet6_2_piece_5a = extrude(amount=8.5, mode=Mode.PRIVATE)
    fillet6_2_piece_5a = split(fillet6_2_piece_5a, bisect_by=Plane(origin=(7.5, 3.952790229, 29.047209771), z_dir=(1, 0, 0)), keep=Keep.TOP, mode=Mode.PRIVATE)
    with BuildSketch(Plane(origin=(7.5, -3.5, 29.5), x_dir=(1, 0, 0), z_dir=(0, 1, 0))) as fillet6_2_piece_5b_section:
        with BuildLine():
            CenterArc((FILLET6_R, FILLET6_R), FILLET6_R, 180, 90)
            Line((0, FILLET6_R), (0, 0))
            Line((0, 0), (FILLET6_R, 0))
        make_face()
    fillet6_2_piece_5b = extrude(amount=12, mode=Mode.PRIVATE)
    fillet6_2_piece_5b = split(fillet6_2_piece_5b, bisect_by=Plane(origin=(7.952790229, 3.5, 29.047209771), z_dir=(0, 1, 0)), keep=Keep.TOP, mode=Mode.PRIVATE)
    fillet6_2_piece_5 = fillet6_2_piece_5a & fillet6_2_piece_5b
    add(fillet6_2_piece_5, mode=Mode.SUBTRACT)
    with BuildSketch(Plane(origin=(4, -3.5, 29.5), x_dir=(0, -1, 0), z_dir=(1, 0, 0))) as fillet6_2_piece_6a_section:
        with BuildLine():
            CenterArc((FILLET6_R, FILLET6_R), FILLET6_R, 180, 90)
            Line((0, FILLET6_R), (0, 0))
            Line((0, 0), (FILLET6_R, 0))
        make_face()
    fillet6_2_piece_6a = extrude(amount=8.5, mode=Mode.PRIVATE)
    fillet6_2_piece_6a = split(fillet6_2_piece_6a, bisect_by=Plane(origin=(7.5, -3.952790229, 29.047209771), z_dir=(1, 0, 0)), keep=Keep.TOP, mode=Mode.PRIVATE)
    with BuildSketch(Plane(origin=(7.5, -8.5, 29.5), x_dir=(1, 0, 0), z_dir=(0, 1, 0))) as fillet6_2_piece_6b_section:
        with BuildLine():
            CenterArc((FILLET6_R, FILLET6_R), FILLET6_R, 180, 90)
            Line((0, FILLET6_R), (0, 0))
            Line((0, 0), (FILLET6_R, 0))
        make_face()
    fillet6_2_piece_6b = extrude(amount=12, mode=Mode.PRIVATE)
    fillet6_2_piece_6b = split(fillet6_2_piece_6b, bisect_by=Plane(origin=(7.952790229, -3.5, 29.047209771), z_dir=(0, -1, 0)), keep=Keep.TOP, mode=Mode.PRIVATE)
    fillet6_2_piece_6 = fillet6_2_piece_6a & fillet6_2_piece_6b
    add(fillet6_2_piece_6, mode=Mode.SUBTRACT)


solid = part.part
